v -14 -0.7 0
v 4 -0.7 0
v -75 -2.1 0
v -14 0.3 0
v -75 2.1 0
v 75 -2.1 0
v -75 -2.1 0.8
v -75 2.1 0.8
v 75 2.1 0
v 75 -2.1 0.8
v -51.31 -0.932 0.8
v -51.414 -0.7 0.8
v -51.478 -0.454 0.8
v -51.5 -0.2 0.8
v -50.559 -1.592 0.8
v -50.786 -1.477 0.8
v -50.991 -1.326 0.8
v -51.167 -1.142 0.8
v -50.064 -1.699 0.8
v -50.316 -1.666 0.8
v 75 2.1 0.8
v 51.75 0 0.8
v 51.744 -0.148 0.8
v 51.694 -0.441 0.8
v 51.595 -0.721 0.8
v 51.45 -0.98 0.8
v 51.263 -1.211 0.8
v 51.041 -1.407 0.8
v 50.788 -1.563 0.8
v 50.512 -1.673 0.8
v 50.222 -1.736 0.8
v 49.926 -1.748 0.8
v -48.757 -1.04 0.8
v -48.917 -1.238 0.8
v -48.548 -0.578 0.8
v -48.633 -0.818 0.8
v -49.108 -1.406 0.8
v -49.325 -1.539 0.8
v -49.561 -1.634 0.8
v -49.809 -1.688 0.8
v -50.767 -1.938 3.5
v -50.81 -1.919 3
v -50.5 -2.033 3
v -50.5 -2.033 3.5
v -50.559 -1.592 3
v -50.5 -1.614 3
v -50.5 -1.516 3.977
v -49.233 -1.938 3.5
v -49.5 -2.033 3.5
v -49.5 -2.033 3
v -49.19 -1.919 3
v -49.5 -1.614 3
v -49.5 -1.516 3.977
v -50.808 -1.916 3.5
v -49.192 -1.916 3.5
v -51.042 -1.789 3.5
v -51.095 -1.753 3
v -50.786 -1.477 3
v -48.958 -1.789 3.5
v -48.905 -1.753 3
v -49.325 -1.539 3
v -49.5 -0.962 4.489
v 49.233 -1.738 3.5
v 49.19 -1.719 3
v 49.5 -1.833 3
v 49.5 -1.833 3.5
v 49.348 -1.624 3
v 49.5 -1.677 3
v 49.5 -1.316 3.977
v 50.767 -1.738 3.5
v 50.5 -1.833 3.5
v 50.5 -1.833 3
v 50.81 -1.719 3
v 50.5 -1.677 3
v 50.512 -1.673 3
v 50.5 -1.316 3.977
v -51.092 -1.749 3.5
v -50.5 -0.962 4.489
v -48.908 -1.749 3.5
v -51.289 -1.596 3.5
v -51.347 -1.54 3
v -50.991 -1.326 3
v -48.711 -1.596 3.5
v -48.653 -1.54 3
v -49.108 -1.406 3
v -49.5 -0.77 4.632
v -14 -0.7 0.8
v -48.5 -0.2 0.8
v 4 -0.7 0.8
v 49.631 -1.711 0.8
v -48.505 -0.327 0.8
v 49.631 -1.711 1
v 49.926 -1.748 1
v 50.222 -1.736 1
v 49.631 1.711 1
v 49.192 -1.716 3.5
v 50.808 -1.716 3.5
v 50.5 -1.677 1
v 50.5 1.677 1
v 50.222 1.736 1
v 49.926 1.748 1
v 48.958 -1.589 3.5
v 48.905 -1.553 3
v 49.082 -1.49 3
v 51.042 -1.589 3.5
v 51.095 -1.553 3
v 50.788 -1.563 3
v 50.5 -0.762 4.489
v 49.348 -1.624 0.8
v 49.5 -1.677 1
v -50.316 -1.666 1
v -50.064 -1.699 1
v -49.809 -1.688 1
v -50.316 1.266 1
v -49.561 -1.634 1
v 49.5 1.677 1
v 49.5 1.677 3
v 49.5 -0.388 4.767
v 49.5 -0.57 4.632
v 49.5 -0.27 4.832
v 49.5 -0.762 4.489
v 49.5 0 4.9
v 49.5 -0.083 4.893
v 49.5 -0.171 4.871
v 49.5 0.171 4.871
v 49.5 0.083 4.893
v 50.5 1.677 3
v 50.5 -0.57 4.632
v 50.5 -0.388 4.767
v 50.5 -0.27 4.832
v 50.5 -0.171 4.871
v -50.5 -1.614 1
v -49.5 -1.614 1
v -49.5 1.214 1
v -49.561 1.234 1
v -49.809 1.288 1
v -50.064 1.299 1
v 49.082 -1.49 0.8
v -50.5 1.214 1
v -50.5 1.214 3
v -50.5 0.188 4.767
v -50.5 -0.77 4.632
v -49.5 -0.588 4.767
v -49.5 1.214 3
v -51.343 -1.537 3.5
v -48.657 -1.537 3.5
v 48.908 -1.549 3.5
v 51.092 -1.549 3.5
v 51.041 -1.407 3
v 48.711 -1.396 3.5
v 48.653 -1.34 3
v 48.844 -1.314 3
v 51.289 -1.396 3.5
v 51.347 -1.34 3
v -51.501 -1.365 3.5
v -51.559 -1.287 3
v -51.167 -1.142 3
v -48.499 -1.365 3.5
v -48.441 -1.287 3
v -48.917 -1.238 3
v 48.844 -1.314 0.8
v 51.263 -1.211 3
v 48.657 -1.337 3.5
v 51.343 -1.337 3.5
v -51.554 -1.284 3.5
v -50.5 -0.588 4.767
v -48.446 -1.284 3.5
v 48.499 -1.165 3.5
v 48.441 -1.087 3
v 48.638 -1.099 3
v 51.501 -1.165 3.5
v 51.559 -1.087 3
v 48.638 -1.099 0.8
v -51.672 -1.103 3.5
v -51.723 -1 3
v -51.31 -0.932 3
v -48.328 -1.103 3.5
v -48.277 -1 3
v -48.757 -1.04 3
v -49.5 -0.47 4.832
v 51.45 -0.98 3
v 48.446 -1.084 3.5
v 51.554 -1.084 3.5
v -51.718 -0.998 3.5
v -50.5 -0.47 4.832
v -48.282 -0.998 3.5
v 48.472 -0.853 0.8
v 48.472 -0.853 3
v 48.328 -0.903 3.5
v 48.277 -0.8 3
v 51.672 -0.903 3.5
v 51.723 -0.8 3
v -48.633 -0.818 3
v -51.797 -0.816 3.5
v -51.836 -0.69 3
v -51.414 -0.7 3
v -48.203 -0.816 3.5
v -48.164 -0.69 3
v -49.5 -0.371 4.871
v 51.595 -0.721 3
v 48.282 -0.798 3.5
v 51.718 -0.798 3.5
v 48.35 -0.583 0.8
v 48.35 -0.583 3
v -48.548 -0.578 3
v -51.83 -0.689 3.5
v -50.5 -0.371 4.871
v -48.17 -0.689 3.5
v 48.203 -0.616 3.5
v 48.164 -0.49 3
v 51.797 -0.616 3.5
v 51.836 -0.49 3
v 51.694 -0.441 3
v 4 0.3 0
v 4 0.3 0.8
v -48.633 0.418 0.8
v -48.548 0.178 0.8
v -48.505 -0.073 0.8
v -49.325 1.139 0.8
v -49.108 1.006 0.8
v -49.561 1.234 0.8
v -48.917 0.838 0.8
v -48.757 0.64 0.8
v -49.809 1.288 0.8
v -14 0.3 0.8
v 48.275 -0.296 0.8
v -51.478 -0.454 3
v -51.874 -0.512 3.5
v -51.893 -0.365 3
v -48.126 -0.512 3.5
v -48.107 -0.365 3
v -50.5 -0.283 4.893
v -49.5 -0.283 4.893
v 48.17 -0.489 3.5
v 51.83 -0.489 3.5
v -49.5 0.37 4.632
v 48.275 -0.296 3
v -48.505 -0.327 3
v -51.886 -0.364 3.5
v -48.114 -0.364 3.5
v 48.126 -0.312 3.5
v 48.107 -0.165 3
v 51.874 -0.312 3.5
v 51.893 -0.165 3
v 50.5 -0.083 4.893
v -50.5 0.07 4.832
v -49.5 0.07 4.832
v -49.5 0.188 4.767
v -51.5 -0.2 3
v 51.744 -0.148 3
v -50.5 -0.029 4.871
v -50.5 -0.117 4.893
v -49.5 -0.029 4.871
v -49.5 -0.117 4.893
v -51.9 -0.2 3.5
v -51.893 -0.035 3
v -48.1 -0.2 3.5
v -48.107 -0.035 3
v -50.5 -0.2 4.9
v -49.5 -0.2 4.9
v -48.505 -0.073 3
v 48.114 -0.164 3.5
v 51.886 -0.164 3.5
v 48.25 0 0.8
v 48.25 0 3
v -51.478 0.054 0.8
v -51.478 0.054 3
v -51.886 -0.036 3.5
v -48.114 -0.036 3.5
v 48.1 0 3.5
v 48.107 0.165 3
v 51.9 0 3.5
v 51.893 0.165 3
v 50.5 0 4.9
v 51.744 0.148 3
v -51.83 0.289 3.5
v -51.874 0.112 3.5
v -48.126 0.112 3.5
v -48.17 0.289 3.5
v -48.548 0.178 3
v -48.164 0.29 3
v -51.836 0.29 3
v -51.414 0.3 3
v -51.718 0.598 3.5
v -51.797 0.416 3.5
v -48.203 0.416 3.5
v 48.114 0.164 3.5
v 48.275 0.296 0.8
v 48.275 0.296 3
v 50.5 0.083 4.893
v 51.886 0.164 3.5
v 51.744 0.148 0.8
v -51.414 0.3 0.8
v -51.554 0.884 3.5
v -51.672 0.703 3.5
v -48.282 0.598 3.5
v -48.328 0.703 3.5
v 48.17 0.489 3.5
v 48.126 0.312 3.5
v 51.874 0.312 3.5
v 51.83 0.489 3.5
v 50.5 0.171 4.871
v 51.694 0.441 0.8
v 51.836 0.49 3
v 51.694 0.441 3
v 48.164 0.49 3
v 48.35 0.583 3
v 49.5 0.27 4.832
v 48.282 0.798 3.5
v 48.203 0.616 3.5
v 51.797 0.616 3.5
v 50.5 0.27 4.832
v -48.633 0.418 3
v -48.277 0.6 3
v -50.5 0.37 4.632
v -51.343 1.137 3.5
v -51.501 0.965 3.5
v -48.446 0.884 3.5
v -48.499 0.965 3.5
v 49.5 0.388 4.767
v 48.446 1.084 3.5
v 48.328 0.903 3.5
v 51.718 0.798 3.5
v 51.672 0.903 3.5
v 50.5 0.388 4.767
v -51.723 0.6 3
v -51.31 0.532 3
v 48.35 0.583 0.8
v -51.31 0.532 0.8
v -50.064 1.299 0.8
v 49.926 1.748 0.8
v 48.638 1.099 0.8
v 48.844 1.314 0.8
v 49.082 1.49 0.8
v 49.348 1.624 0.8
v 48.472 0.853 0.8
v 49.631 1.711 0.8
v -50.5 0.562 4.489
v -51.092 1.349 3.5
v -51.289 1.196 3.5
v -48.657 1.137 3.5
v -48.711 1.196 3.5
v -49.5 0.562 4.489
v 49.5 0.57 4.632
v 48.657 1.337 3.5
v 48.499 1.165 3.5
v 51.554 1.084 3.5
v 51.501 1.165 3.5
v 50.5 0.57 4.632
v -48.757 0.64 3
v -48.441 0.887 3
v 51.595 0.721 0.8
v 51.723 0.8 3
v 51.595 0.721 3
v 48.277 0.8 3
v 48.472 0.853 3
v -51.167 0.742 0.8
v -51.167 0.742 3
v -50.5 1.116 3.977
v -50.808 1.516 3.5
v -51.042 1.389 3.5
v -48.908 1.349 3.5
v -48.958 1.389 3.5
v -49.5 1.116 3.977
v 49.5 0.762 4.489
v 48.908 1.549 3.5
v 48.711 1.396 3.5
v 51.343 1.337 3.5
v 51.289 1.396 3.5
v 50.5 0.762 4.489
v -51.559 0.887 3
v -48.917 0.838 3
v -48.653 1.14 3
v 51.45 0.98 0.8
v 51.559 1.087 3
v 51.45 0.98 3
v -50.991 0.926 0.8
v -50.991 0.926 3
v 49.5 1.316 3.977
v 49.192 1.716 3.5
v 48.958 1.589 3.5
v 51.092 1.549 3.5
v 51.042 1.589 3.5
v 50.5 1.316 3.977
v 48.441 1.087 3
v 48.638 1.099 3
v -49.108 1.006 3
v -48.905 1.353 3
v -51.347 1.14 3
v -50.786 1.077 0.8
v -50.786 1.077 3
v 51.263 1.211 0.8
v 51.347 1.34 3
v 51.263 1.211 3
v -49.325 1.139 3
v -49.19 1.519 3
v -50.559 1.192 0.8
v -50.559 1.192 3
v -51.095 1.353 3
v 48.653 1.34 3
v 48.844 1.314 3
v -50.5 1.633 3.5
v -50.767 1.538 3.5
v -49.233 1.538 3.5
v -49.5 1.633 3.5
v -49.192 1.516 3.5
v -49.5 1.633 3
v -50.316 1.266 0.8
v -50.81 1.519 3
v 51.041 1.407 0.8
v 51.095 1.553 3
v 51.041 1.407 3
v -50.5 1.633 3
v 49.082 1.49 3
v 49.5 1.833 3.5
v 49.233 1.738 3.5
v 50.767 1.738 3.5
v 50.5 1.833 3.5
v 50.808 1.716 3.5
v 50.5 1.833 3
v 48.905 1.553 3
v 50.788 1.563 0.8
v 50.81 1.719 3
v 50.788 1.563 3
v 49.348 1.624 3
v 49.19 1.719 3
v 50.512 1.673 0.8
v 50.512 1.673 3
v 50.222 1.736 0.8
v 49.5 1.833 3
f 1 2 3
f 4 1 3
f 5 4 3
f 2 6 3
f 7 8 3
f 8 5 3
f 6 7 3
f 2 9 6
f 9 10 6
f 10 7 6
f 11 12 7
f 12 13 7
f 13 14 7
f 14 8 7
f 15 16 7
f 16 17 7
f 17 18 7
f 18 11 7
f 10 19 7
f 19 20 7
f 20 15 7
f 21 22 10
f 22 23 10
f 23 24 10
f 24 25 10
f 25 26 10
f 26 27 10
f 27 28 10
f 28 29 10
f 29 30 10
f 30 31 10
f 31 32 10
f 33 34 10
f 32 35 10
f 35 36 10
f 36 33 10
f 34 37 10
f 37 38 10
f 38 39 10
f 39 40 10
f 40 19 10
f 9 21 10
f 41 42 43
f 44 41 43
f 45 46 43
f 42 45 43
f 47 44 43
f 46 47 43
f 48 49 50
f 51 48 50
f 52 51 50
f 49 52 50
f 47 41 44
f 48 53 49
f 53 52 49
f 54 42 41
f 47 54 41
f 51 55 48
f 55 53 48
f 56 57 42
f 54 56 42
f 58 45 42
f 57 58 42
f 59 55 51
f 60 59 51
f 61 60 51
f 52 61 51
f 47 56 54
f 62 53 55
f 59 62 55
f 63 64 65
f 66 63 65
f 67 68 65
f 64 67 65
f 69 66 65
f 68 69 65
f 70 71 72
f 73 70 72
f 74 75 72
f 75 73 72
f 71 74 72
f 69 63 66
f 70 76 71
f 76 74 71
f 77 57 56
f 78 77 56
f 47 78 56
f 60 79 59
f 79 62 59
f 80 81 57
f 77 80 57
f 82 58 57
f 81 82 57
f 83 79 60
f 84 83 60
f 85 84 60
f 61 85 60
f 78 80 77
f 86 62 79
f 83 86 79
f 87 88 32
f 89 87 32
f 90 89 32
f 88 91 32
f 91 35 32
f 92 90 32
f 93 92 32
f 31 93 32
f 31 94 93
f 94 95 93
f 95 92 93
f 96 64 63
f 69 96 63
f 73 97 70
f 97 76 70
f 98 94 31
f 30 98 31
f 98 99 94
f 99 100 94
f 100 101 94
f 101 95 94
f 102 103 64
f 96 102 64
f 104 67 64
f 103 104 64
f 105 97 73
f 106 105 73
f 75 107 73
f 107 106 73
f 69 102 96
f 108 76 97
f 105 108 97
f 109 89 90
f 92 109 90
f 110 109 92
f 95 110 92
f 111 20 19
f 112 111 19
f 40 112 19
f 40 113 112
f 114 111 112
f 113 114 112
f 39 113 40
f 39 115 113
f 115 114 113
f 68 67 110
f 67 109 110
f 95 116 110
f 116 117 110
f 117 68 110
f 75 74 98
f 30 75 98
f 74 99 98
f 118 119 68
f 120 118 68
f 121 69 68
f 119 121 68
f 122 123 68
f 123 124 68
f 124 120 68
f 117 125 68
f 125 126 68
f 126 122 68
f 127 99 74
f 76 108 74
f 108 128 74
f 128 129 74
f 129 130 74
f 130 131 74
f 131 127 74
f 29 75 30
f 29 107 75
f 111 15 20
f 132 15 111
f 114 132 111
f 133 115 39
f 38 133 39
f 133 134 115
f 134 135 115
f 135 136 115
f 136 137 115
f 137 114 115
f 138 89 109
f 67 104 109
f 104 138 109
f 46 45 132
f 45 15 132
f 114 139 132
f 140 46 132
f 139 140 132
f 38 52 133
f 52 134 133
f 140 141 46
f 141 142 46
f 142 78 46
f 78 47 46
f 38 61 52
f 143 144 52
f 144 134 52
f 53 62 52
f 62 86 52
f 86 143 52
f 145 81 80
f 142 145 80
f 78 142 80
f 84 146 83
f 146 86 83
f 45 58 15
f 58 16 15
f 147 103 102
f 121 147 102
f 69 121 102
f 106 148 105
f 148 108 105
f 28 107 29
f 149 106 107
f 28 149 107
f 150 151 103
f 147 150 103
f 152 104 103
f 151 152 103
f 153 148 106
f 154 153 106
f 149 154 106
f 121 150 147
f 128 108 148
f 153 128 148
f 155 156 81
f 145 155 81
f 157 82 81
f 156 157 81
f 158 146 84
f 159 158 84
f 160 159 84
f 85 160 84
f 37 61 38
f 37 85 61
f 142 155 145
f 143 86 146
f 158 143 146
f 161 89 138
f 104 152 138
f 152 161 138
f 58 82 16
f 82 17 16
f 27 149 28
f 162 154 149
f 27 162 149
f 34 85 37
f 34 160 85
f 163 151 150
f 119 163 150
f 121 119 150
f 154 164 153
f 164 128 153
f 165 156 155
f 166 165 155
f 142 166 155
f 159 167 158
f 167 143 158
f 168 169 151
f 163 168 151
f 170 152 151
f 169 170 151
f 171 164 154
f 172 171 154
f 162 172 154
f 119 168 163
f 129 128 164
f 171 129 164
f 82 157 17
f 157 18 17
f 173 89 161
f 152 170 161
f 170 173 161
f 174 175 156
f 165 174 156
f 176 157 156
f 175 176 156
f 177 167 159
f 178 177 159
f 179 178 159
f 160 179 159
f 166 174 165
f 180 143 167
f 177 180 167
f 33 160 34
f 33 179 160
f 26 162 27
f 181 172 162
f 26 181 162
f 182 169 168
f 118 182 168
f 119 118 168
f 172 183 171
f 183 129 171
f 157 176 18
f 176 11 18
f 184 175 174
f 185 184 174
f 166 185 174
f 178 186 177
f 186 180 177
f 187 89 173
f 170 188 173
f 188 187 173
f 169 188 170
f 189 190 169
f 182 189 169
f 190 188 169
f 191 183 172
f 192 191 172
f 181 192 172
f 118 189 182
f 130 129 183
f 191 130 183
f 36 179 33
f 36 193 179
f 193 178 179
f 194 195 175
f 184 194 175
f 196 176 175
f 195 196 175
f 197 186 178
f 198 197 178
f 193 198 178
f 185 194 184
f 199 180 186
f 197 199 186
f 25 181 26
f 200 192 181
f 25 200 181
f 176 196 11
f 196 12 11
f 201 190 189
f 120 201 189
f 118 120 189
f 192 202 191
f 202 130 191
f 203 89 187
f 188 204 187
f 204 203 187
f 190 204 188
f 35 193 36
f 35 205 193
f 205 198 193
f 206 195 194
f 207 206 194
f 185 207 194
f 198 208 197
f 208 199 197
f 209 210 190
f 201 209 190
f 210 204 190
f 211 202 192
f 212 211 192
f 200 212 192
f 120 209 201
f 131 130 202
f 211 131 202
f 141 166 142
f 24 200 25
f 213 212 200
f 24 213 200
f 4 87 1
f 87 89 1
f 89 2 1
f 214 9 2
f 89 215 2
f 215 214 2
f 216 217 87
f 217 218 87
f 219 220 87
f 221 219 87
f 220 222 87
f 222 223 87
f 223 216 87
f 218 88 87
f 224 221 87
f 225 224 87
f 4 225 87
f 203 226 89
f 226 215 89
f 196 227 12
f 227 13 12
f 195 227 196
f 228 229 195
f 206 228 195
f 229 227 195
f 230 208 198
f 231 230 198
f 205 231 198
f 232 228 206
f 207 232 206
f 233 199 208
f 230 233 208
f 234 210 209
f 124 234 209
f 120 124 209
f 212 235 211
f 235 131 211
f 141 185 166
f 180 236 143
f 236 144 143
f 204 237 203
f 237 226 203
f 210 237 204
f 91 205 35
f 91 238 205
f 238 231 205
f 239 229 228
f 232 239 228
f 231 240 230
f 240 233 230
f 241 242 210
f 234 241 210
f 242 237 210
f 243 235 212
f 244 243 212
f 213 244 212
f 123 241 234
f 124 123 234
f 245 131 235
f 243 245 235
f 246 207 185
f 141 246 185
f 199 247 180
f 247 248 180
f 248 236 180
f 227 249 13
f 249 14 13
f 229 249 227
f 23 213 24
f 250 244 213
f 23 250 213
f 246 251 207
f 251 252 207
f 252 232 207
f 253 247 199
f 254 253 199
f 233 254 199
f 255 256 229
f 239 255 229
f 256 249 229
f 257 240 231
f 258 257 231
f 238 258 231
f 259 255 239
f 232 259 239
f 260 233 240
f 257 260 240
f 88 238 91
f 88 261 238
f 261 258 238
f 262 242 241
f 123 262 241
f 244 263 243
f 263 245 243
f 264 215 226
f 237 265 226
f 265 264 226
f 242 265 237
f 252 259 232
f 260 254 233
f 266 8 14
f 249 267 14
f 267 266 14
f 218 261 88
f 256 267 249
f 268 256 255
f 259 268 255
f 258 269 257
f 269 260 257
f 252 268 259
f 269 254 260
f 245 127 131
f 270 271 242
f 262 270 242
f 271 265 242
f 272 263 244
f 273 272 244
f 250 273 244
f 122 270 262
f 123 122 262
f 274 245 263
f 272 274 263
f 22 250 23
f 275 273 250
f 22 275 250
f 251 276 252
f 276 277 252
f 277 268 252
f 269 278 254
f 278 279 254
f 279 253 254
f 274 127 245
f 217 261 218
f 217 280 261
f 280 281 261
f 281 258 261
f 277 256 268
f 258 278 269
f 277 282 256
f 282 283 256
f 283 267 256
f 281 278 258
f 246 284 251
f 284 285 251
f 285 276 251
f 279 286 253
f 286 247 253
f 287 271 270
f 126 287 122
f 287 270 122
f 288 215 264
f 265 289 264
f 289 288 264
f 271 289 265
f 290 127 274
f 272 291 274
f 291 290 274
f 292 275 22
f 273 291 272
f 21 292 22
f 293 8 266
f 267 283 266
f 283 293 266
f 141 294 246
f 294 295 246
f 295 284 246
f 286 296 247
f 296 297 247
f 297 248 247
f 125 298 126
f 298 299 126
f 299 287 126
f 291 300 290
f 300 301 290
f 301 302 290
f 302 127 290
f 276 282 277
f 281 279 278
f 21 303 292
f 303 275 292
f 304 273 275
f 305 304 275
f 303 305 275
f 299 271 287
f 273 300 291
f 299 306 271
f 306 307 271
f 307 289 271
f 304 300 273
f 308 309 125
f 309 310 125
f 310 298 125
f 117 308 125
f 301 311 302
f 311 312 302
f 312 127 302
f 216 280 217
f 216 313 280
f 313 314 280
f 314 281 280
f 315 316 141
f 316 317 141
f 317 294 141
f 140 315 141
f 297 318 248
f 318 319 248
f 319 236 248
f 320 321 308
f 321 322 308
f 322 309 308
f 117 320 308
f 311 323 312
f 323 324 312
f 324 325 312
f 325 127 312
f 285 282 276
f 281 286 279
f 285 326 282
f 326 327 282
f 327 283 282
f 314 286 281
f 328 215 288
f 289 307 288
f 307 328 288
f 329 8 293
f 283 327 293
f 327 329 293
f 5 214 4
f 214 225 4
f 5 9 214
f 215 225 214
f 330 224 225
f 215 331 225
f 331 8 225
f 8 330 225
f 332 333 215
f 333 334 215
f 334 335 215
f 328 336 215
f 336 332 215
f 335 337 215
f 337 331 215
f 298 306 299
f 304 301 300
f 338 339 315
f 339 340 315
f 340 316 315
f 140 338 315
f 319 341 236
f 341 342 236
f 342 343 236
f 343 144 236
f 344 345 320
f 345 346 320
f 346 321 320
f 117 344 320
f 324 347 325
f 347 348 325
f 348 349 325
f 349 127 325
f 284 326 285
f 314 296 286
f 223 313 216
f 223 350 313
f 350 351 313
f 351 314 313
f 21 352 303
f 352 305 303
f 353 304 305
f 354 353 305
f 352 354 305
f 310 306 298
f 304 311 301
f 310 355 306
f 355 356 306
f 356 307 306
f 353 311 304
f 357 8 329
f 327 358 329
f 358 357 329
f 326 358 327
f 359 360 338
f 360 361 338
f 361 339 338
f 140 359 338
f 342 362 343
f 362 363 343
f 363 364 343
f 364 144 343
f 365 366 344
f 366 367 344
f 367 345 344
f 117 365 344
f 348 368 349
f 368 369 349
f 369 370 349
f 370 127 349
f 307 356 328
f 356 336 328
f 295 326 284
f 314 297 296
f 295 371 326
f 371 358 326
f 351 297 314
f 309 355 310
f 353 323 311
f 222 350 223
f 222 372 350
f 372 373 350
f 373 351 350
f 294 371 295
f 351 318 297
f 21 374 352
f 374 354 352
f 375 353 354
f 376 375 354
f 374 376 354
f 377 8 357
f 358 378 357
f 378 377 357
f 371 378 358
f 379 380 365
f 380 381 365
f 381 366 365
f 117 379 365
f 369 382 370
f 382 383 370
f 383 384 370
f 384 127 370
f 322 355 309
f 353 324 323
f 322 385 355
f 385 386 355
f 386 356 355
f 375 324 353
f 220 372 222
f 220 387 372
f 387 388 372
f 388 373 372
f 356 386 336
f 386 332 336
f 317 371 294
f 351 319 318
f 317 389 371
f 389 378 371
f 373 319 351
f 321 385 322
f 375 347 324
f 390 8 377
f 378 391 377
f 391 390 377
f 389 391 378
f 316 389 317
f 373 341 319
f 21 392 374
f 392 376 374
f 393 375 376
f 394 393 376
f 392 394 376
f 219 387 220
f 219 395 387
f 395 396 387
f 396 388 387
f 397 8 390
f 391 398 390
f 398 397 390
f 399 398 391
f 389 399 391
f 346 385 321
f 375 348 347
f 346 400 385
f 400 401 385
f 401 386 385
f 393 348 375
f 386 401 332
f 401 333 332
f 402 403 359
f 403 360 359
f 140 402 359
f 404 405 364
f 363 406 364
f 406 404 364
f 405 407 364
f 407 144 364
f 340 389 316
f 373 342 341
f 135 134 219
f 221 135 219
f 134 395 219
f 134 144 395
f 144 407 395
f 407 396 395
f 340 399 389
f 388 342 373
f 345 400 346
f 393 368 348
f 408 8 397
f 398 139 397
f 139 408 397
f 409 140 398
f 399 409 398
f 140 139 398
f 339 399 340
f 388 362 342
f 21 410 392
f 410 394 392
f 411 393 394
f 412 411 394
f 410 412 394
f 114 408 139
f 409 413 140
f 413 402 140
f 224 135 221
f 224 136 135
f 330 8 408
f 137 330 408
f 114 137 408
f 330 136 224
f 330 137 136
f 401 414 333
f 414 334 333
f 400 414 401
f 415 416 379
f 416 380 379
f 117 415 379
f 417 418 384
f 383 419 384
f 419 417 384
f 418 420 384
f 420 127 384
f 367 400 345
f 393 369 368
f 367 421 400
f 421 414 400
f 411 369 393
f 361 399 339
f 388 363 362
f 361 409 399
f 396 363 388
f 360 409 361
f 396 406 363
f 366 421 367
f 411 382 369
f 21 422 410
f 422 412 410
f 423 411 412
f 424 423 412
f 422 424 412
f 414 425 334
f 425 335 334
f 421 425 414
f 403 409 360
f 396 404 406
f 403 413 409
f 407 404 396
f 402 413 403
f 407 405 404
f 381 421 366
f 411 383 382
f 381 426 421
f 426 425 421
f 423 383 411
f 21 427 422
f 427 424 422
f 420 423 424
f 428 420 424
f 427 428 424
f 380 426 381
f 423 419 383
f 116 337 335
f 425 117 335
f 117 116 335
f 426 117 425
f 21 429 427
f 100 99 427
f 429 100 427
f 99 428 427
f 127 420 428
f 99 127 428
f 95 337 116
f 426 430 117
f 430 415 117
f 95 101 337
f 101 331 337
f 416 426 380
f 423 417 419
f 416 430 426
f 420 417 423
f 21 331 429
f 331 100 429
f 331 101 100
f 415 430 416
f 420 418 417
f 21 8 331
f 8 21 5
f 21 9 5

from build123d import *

# Parameters (mm, degrees)
SKICA2_W                 = 150
SKICA2_H                 = 4.2
SKICA2_W_2               = 18
SKICA2_H_2               = 1
P_IDAT_VYSUNUT_M2_DEPTH  = 0.8
SKICA3_R                 = 1.5
SKICA3_R_2               = 1.75
P_IDAT_VYSUNUT_M3_DEPTH  = 2.2
SKICA5_R                 = 1.9
P_IDAT_VYSUNUT_M5_DEPTH  = 2
ZKOSEN_2_SIZE            = 1.5
SKICA7_W                 = 1
SKICA7_H                 = 5
ODEBRAT_VYSUNUT_M1_DEPTH = 4


with BuildPart() as part:
    # Skica2 → Přidat vysunutím2 (new body)
    with BuildSketch(Plane.XY):
        Rectangle(SKICA2_W, SKICA2_H)
        with Locations((-5, -0.2)):
            Rectangle(SKICA2_W_2, SKICA2_H_2, mode=Mode.SUBTRACT)
    extrude(amount=P_IDAT_VYSUNUT_M2_DEPTH)

    # Skica3 → Přidat vysunutím3 (add)
    with BuildSketch(Plane.XY.offset(0.8)):
        with Locations((-50, -0.2)):
            Circle(SKICA3_R)
        with Locations((50, 0)):
            Circle(SKICA3_R_2)
    extrude(amount=P_IDAT_VYSUNUT_M3_DEPTH)

    # Skica5 → Přidat vysunutím5 (add)
    with BuildSketch(Plane.XY.offset(3)):
        with Locations((-50, -0.2)):
            Circle(SKICA5_R)
        with Locations((50, 0)):
            Circle(SKICA5_R)
    extrude(amount=P_IDAT_VYSUNUT_M5_DEPTH)

    # Zkosení2
    zkosen_2_edges = [part.edges().sort_by_distance(p)[0] for p in [
        (-51.9, -0.2, 5),
        (48.1, 0, 5),
    ]]
    chamfer(zkosen_2_edges, length=ZKOSEN_2_SIZE)

    # Skica7 → Odebrat vysunutím1 (cut)
    with BuildSketch(Plane.XY.offset(5)):
        with Locations((-50, -0.2)):
            Rectangle(SKICA7_W, SKICA7_H)
        with Locations((50, 0)):
            Rectangle(SKICA7_W, SKICA7_H)
    extrude(amount=-ODEBRAT_VYSUNUT_M1_DEPTH, mode=Mode.SUBTRACT)


solid = part.part
